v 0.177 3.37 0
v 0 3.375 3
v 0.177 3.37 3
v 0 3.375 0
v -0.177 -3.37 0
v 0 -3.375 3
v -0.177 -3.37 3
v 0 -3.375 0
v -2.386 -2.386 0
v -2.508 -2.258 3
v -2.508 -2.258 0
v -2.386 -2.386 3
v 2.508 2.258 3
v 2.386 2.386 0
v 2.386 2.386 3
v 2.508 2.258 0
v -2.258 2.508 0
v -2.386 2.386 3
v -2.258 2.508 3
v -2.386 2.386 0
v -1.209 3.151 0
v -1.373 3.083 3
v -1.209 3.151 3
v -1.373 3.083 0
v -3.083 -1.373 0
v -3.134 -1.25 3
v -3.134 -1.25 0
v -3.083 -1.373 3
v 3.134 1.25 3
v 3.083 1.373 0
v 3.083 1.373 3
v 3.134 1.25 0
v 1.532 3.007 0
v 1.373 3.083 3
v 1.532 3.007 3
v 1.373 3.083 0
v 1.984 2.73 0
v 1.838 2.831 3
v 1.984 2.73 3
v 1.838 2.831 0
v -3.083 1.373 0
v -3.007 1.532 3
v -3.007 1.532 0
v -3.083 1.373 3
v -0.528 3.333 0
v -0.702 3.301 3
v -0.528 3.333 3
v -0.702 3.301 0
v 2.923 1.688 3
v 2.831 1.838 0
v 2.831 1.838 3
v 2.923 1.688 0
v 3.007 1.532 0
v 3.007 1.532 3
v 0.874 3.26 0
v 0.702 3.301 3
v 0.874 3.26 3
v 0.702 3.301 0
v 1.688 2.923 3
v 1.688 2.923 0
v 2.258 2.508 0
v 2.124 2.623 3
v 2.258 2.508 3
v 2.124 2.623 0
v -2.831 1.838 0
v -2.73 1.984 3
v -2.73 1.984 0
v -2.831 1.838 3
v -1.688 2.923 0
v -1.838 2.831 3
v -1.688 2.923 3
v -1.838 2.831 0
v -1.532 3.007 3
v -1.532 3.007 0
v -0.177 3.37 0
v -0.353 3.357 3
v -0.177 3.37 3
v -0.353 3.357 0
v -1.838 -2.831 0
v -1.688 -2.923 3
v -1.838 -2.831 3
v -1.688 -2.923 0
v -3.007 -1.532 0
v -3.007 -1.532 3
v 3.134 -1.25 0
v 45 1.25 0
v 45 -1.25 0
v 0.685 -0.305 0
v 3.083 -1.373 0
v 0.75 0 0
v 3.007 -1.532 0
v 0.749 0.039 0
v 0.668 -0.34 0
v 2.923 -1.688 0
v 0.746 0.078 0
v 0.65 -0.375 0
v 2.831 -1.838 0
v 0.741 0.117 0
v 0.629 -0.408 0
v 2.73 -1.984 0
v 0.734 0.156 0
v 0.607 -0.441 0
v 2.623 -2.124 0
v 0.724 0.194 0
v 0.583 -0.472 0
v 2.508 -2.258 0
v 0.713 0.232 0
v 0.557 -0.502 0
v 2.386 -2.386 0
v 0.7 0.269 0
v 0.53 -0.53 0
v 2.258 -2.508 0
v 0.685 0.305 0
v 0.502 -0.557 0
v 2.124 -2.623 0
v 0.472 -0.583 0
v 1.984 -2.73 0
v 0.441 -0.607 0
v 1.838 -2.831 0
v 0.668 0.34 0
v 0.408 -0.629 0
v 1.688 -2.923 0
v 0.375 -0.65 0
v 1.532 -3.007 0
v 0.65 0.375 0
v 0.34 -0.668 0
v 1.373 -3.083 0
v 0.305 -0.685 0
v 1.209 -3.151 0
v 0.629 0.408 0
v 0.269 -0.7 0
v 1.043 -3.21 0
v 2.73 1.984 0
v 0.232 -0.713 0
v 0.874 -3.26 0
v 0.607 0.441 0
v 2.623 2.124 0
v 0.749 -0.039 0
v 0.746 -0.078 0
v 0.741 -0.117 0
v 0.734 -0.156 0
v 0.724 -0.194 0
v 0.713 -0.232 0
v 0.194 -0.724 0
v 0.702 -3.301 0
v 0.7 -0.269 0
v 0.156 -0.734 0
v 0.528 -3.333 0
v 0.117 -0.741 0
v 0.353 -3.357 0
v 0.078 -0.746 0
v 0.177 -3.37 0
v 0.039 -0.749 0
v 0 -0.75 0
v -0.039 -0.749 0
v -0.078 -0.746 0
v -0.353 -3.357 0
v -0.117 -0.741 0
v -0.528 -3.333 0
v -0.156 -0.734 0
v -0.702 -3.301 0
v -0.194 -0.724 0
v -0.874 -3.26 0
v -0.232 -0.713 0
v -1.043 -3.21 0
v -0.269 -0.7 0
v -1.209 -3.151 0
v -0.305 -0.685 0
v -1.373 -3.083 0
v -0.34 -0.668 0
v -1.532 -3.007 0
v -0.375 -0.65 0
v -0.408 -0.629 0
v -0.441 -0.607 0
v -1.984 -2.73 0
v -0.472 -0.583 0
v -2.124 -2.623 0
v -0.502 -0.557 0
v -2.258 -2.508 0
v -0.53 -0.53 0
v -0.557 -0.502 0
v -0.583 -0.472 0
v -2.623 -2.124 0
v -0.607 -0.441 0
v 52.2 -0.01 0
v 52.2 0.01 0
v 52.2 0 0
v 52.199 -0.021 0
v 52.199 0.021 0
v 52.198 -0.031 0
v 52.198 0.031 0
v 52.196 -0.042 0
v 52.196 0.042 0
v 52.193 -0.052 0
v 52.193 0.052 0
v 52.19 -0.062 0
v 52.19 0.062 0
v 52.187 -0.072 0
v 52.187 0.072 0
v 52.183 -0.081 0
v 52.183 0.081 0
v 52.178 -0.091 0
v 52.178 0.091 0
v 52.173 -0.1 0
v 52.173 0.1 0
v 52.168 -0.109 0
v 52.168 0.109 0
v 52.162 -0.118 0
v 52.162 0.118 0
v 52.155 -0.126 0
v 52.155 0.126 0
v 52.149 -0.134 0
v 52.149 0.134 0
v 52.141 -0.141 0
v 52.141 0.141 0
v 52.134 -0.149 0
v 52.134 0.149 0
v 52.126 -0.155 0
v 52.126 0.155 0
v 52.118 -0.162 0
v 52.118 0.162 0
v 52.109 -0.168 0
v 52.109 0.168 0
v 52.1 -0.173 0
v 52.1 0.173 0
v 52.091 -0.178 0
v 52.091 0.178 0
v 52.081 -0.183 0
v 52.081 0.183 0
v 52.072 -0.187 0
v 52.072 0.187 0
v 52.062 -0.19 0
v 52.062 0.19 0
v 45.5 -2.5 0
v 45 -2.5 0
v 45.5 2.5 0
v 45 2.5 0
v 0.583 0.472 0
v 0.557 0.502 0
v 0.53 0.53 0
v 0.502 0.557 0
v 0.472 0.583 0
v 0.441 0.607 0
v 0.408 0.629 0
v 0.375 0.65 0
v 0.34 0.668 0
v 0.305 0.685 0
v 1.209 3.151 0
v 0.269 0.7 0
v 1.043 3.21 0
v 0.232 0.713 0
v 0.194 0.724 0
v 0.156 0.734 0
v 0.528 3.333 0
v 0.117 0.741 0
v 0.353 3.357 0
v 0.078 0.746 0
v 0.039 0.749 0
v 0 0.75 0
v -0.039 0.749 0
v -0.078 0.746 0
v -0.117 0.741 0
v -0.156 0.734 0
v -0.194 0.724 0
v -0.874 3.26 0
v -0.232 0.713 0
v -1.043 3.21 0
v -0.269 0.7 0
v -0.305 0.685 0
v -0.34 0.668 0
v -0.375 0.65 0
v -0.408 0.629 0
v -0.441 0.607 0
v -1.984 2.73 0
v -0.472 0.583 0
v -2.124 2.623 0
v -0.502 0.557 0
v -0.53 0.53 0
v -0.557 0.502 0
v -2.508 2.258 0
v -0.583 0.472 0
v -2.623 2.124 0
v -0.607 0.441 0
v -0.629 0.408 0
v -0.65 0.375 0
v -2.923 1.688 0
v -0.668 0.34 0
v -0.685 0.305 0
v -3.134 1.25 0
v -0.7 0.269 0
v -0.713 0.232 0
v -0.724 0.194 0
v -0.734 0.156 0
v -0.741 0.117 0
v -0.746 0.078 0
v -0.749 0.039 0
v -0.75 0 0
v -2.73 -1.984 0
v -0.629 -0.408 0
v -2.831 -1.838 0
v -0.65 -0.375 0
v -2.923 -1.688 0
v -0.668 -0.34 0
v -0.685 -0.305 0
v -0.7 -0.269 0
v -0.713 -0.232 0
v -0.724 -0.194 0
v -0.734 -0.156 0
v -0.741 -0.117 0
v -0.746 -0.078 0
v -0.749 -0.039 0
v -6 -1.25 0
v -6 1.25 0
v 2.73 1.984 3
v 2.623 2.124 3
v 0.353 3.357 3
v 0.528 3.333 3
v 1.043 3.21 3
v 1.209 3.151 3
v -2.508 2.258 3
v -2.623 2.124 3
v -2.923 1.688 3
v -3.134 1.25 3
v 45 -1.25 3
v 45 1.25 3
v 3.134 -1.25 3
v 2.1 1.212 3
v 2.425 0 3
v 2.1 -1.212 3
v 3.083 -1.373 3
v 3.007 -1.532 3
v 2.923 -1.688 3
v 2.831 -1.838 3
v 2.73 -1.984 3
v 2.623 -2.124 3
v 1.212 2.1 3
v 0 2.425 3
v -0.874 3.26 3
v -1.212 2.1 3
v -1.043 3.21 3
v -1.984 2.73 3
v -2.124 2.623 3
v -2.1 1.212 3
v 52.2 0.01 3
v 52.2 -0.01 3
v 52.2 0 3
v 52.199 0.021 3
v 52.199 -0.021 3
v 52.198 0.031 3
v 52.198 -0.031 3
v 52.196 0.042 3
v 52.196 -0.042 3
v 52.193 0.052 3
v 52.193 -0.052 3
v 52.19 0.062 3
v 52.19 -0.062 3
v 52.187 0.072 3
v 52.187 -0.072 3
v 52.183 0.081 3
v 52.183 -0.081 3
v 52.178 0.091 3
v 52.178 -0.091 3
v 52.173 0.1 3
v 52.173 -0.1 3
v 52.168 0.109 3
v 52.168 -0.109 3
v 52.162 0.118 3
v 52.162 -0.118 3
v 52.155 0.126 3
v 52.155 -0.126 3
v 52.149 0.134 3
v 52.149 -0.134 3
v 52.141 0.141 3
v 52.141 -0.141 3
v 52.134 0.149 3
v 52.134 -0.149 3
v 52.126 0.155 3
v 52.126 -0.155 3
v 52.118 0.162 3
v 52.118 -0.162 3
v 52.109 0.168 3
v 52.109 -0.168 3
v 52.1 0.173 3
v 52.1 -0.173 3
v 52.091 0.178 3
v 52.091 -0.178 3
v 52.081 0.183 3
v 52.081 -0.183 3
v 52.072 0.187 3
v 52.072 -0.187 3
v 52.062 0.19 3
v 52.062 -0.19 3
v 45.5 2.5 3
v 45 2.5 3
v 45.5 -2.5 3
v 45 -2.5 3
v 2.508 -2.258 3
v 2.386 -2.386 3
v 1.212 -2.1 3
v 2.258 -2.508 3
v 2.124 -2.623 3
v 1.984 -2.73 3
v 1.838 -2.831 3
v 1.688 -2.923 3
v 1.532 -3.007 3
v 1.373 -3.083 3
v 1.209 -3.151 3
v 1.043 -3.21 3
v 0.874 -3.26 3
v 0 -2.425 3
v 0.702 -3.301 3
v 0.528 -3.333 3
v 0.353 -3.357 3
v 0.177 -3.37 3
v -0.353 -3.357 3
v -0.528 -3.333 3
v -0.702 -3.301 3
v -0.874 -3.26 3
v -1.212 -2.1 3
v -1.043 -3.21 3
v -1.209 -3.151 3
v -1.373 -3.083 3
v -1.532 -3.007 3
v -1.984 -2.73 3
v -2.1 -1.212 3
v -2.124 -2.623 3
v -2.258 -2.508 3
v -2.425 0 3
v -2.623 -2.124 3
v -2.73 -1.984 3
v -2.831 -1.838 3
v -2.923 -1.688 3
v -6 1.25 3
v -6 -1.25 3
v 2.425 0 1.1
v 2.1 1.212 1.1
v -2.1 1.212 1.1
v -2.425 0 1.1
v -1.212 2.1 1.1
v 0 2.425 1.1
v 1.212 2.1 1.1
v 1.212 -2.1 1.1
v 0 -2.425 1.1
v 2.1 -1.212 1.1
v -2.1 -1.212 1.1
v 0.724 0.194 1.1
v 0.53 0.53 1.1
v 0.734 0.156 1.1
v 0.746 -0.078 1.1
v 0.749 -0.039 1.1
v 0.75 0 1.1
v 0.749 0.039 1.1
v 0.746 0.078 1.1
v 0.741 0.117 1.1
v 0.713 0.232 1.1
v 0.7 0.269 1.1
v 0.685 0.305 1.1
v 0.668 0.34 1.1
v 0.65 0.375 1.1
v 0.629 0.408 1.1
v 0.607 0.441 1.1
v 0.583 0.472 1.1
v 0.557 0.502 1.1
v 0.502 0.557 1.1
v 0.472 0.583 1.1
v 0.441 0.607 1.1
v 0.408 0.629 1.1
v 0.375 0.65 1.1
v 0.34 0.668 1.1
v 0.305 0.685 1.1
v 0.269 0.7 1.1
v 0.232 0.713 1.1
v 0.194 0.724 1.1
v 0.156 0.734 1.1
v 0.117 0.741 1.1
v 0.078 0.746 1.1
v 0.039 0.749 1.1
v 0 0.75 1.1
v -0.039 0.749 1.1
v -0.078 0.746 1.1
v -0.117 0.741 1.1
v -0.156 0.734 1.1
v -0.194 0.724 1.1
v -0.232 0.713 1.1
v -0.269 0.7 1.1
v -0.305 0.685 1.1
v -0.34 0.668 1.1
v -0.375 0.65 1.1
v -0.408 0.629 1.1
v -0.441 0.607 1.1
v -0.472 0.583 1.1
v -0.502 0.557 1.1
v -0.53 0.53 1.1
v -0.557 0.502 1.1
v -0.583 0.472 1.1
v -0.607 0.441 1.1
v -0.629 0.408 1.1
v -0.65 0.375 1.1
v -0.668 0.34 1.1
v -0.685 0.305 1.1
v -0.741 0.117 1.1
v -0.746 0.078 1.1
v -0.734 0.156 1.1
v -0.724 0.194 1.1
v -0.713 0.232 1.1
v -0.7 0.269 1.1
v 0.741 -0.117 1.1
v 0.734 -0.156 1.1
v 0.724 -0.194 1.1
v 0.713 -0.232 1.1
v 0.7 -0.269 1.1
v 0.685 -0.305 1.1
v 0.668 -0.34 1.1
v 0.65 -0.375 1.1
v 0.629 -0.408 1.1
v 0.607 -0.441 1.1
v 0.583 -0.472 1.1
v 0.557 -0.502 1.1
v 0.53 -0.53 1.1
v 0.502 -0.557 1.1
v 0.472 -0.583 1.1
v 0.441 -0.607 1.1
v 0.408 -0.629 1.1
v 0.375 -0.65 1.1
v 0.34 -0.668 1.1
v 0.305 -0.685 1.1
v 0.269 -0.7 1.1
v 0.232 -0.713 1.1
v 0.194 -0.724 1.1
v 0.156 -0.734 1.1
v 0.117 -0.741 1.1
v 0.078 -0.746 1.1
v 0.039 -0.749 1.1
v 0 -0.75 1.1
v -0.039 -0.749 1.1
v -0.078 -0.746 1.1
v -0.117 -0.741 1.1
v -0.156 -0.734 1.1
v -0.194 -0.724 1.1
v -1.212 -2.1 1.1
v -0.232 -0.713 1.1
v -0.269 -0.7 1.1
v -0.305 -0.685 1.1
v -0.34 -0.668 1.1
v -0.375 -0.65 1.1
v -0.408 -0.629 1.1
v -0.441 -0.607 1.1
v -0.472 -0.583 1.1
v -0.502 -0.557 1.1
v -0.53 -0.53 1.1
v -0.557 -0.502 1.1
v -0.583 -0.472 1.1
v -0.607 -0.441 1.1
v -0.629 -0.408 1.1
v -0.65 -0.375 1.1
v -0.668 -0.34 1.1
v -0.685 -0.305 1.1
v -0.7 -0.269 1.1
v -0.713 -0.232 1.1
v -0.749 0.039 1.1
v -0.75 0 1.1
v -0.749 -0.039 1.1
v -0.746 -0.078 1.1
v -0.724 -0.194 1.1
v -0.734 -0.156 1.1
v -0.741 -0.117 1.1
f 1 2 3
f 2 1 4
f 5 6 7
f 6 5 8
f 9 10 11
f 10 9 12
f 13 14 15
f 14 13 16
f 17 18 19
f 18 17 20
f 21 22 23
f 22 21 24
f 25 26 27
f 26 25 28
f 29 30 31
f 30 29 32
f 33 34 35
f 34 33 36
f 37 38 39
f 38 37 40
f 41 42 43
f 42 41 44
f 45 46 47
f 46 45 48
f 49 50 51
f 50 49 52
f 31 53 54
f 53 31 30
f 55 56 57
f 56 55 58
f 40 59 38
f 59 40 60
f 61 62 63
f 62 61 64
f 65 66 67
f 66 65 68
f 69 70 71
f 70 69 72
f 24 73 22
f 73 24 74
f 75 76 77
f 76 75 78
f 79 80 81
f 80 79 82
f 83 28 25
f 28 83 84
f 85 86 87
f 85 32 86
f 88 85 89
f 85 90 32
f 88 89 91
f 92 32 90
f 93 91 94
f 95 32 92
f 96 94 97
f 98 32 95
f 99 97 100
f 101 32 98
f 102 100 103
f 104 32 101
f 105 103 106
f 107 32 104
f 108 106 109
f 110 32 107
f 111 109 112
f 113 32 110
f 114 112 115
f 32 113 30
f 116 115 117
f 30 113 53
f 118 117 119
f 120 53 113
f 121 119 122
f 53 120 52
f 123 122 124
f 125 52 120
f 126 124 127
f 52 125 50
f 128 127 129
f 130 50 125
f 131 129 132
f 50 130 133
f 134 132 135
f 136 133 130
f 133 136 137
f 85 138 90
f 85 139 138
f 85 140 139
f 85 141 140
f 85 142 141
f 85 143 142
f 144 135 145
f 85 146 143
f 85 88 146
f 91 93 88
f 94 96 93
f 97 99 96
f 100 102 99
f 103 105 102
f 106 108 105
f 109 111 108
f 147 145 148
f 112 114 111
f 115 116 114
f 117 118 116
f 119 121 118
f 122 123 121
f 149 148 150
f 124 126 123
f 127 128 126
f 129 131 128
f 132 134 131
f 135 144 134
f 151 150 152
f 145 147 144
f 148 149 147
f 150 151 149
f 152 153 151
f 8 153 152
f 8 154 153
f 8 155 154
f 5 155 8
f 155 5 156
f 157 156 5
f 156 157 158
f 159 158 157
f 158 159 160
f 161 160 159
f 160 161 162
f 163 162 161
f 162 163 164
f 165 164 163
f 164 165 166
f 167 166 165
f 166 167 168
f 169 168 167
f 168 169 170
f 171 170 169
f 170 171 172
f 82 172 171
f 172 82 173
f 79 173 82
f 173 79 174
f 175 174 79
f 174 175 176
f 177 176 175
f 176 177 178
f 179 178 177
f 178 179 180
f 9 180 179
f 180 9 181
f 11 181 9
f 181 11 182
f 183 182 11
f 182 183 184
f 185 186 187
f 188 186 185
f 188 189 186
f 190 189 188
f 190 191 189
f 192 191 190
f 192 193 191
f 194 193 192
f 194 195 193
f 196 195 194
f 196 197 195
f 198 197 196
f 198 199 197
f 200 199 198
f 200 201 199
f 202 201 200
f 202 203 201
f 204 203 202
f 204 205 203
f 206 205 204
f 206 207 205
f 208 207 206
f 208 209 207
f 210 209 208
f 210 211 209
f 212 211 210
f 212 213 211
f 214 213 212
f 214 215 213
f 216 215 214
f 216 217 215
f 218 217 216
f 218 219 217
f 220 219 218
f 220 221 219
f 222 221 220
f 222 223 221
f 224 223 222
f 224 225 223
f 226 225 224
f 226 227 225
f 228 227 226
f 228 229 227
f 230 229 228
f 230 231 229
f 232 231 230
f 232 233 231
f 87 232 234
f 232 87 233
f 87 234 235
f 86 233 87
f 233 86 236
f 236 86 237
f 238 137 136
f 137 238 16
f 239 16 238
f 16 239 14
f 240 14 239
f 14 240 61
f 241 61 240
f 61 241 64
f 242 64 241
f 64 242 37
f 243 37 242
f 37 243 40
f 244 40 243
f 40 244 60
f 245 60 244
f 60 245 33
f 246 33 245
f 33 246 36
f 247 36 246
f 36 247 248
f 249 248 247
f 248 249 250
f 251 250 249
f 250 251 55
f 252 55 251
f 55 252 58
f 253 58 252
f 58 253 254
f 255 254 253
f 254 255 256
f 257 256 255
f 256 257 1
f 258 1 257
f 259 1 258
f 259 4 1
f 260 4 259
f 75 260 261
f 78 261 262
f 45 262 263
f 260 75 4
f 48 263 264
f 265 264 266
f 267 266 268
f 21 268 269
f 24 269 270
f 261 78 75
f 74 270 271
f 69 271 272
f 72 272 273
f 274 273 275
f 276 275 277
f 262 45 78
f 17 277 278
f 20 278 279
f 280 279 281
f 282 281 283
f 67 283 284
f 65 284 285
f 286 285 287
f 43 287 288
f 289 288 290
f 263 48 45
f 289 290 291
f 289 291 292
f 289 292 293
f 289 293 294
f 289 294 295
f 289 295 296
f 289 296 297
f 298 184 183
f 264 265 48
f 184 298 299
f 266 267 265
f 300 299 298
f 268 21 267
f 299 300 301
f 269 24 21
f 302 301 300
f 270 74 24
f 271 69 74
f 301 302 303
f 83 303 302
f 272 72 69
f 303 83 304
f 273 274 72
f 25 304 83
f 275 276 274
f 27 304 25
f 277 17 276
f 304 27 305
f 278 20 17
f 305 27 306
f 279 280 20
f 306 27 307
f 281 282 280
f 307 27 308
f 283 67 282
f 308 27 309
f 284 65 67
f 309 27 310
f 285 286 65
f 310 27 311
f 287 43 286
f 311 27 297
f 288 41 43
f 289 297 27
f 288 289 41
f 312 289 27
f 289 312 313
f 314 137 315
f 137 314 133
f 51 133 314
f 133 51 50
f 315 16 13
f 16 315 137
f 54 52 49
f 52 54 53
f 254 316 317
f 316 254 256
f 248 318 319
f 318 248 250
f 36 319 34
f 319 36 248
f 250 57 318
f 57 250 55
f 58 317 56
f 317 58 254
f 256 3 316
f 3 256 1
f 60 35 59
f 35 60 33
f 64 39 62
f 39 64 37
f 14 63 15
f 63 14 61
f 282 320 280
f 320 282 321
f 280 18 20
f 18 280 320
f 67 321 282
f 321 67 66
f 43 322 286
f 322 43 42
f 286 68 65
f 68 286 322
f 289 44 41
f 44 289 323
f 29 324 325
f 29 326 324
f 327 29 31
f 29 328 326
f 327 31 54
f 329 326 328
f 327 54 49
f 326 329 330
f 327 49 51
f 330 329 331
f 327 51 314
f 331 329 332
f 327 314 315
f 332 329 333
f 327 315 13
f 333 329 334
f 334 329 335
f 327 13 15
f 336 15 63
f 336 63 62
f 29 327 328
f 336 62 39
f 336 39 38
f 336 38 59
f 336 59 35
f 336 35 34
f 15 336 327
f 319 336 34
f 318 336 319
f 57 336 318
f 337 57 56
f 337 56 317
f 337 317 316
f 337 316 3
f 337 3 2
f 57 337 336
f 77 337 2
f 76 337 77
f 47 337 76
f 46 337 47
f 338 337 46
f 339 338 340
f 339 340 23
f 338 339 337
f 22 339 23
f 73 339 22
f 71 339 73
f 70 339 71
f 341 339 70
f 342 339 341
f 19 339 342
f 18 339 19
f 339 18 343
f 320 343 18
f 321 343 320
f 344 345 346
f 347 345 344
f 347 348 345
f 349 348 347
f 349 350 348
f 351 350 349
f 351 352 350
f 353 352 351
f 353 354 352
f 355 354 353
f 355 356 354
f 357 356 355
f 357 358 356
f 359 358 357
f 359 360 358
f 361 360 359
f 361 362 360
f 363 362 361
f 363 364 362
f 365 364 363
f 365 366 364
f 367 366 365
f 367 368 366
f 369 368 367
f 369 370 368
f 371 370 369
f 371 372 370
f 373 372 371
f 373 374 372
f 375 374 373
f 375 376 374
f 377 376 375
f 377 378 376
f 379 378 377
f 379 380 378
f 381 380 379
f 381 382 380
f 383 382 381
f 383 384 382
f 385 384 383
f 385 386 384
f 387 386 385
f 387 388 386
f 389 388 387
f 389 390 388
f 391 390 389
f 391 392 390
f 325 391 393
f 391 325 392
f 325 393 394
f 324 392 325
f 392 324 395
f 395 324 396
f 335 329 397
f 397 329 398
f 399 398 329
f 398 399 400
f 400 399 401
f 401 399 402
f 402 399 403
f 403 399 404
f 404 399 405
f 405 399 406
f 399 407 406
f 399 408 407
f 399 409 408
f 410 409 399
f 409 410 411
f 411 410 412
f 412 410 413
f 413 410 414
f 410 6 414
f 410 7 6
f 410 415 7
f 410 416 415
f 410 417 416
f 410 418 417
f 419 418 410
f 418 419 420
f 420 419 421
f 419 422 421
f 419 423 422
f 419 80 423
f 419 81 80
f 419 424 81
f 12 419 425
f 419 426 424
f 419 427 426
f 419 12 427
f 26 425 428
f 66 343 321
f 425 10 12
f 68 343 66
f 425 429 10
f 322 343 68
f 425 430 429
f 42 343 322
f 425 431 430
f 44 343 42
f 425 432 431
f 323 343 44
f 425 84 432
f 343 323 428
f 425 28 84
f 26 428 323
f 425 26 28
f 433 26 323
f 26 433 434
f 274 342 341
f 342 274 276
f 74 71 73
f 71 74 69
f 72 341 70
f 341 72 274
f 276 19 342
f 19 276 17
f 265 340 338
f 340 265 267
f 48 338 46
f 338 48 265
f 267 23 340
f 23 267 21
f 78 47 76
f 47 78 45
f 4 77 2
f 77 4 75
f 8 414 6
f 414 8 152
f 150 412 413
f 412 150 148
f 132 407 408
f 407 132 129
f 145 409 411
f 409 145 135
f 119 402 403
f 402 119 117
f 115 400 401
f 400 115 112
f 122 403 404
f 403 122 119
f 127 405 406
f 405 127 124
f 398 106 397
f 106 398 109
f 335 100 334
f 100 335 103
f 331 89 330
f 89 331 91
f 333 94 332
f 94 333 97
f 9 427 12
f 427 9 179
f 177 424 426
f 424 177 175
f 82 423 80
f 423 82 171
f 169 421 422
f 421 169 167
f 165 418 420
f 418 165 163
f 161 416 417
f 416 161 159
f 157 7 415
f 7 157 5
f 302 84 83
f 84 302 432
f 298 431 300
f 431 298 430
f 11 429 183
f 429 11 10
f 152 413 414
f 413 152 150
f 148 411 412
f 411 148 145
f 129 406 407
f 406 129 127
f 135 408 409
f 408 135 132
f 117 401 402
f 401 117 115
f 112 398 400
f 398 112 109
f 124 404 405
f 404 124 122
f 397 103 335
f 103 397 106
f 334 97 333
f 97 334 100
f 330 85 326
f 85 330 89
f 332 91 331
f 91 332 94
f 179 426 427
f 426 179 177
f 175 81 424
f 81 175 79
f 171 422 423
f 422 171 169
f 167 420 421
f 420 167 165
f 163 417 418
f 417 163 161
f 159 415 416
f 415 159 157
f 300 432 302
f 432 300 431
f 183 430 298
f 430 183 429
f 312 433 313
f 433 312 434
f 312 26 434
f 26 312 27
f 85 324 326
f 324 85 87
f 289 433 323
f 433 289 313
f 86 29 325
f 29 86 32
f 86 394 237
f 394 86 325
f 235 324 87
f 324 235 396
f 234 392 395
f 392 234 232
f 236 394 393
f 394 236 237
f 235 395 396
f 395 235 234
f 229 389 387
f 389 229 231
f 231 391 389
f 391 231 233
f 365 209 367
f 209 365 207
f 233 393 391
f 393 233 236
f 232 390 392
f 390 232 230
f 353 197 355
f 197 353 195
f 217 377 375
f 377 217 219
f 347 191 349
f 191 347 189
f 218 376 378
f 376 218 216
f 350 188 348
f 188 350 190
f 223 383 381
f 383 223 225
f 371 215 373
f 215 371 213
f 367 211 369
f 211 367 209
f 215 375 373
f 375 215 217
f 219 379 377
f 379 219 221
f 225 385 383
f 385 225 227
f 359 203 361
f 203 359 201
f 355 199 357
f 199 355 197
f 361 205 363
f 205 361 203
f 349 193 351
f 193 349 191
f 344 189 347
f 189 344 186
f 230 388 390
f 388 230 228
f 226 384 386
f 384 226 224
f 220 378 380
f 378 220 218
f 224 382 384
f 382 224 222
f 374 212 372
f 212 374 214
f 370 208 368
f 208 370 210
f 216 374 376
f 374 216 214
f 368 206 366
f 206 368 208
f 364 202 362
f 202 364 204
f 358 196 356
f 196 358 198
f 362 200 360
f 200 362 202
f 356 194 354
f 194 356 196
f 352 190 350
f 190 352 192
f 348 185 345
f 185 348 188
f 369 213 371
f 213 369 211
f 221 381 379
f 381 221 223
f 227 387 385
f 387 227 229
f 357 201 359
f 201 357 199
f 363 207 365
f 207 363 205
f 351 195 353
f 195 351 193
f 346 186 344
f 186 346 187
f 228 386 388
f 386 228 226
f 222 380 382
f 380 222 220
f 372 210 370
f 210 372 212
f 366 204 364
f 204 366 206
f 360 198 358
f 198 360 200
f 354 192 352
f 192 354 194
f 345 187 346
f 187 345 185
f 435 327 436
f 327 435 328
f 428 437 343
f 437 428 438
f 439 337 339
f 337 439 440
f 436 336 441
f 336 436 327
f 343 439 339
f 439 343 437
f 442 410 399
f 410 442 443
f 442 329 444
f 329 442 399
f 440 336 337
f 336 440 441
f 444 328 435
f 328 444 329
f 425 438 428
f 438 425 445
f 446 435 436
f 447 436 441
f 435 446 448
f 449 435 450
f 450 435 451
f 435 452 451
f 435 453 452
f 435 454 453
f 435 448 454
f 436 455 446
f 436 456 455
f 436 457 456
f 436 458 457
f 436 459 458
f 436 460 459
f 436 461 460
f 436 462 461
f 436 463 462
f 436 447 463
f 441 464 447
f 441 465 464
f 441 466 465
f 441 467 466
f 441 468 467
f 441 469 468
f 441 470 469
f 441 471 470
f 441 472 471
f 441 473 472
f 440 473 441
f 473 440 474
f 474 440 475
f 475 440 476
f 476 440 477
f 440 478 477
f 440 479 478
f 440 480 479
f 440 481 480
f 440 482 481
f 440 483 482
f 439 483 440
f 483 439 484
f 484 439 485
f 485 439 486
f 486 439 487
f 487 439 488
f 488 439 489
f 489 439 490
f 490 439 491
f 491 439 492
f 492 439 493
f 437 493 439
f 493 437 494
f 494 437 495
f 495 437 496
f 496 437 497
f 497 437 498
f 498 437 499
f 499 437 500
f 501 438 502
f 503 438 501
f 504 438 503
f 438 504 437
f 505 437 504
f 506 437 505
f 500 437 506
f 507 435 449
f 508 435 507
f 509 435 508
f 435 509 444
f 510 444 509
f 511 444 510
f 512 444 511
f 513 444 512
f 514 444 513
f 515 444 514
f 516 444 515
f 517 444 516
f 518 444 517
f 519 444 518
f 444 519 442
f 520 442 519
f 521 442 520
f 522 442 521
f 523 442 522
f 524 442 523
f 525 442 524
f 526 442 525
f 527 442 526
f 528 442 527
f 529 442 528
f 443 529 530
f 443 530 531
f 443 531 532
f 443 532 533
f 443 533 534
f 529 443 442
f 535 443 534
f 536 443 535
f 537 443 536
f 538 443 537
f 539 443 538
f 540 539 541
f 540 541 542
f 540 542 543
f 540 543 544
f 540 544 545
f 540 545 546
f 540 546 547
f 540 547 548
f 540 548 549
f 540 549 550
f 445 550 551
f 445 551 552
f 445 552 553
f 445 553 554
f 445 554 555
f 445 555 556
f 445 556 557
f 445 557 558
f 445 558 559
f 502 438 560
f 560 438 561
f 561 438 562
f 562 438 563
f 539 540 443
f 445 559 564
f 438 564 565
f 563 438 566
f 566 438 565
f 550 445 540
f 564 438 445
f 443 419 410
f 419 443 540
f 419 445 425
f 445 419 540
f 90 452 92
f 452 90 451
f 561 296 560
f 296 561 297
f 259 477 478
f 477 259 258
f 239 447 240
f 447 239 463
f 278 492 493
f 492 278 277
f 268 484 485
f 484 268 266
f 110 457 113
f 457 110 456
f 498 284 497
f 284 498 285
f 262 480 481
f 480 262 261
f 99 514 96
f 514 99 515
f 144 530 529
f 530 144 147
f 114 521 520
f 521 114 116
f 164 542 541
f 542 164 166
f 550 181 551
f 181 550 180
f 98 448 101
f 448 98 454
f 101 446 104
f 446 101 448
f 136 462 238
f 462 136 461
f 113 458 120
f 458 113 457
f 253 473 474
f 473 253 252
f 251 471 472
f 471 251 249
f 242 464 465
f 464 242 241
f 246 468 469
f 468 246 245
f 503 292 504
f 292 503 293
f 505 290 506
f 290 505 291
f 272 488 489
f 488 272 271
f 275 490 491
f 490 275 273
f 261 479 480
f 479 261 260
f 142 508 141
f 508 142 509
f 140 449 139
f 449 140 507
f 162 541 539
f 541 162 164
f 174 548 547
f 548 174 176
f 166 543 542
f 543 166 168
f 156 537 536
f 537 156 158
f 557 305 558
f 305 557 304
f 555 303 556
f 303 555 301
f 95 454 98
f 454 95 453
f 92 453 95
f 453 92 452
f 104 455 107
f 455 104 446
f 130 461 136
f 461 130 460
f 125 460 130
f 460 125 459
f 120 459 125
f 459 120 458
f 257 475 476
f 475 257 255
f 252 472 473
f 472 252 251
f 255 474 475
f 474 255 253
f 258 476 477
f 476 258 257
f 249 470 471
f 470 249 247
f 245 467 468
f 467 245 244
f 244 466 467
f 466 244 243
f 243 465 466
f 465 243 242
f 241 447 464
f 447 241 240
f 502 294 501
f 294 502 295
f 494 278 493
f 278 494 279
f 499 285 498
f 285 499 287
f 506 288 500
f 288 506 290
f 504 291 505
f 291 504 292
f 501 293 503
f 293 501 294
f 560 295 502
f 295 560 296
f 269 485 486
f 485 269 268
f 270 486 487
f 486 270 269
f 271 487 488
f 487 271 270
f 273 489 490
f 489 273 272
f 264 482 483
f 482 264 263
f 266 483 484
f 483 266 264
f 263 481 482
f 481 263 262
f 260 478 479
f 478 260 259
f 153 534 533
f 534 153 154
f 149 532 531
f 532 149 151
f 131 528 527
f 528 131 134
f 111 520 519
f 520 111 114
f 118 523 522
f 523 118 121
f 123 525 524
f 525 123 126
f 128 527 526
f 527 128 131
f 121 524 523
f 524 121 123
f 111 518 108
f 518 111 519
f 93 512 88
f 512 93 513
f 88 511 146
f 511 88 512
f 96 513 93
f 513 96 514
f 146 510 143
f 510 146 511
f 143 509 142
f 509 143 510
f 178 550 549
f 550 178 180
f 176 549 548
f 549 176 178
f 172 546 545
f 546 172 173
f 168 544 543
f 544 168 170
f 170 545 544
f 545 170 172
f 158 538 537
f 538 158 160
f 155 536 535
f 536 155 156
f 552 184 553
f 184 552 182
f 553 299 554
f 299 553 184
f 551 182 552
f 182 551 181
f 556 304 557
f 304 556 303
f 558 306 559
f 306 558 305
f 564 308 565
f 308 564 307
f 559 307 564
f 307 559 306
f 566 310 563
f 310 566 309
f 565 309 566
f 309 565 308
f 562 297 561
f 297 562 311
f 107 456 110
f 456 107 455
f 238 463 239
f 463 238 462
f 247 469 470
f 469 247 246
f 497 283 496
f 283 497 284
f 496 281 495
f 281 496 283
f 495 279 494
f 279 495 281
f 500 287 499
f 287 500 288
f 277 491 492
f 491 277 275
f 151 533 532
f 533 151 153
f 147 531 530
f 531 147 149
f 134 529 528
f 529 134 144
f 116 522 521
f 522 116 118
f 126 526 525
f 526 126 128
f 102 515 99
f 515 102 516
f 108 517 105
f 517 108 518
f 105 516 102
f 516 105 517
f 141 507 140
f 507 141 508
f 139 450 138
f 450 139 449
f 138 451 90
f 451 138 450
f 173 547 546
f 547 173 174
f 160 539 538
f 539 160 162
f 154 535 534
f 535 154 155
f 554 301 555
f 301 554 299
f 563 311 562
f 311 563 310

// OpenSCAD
difference() {
    union() {
        cylinder(r=6.75/2, h=3, $fn=120);
        translate([-6, -1.25, 0]) cube([52,2.5,3]);
        hull() {
            translate([45, -2.5, 0]) cube([.5, 5, 3]);
            translate([52, 0, 0]) cylinder(r=.2, h=3, $fn=120);
        }
    }
    translate([0,0,1.1]) cylinder(r=4.85/2, h=2, $fn=12);
    translate([0,0,-.1]) cylinder(r=.75, h=4, $fn=120);
}
